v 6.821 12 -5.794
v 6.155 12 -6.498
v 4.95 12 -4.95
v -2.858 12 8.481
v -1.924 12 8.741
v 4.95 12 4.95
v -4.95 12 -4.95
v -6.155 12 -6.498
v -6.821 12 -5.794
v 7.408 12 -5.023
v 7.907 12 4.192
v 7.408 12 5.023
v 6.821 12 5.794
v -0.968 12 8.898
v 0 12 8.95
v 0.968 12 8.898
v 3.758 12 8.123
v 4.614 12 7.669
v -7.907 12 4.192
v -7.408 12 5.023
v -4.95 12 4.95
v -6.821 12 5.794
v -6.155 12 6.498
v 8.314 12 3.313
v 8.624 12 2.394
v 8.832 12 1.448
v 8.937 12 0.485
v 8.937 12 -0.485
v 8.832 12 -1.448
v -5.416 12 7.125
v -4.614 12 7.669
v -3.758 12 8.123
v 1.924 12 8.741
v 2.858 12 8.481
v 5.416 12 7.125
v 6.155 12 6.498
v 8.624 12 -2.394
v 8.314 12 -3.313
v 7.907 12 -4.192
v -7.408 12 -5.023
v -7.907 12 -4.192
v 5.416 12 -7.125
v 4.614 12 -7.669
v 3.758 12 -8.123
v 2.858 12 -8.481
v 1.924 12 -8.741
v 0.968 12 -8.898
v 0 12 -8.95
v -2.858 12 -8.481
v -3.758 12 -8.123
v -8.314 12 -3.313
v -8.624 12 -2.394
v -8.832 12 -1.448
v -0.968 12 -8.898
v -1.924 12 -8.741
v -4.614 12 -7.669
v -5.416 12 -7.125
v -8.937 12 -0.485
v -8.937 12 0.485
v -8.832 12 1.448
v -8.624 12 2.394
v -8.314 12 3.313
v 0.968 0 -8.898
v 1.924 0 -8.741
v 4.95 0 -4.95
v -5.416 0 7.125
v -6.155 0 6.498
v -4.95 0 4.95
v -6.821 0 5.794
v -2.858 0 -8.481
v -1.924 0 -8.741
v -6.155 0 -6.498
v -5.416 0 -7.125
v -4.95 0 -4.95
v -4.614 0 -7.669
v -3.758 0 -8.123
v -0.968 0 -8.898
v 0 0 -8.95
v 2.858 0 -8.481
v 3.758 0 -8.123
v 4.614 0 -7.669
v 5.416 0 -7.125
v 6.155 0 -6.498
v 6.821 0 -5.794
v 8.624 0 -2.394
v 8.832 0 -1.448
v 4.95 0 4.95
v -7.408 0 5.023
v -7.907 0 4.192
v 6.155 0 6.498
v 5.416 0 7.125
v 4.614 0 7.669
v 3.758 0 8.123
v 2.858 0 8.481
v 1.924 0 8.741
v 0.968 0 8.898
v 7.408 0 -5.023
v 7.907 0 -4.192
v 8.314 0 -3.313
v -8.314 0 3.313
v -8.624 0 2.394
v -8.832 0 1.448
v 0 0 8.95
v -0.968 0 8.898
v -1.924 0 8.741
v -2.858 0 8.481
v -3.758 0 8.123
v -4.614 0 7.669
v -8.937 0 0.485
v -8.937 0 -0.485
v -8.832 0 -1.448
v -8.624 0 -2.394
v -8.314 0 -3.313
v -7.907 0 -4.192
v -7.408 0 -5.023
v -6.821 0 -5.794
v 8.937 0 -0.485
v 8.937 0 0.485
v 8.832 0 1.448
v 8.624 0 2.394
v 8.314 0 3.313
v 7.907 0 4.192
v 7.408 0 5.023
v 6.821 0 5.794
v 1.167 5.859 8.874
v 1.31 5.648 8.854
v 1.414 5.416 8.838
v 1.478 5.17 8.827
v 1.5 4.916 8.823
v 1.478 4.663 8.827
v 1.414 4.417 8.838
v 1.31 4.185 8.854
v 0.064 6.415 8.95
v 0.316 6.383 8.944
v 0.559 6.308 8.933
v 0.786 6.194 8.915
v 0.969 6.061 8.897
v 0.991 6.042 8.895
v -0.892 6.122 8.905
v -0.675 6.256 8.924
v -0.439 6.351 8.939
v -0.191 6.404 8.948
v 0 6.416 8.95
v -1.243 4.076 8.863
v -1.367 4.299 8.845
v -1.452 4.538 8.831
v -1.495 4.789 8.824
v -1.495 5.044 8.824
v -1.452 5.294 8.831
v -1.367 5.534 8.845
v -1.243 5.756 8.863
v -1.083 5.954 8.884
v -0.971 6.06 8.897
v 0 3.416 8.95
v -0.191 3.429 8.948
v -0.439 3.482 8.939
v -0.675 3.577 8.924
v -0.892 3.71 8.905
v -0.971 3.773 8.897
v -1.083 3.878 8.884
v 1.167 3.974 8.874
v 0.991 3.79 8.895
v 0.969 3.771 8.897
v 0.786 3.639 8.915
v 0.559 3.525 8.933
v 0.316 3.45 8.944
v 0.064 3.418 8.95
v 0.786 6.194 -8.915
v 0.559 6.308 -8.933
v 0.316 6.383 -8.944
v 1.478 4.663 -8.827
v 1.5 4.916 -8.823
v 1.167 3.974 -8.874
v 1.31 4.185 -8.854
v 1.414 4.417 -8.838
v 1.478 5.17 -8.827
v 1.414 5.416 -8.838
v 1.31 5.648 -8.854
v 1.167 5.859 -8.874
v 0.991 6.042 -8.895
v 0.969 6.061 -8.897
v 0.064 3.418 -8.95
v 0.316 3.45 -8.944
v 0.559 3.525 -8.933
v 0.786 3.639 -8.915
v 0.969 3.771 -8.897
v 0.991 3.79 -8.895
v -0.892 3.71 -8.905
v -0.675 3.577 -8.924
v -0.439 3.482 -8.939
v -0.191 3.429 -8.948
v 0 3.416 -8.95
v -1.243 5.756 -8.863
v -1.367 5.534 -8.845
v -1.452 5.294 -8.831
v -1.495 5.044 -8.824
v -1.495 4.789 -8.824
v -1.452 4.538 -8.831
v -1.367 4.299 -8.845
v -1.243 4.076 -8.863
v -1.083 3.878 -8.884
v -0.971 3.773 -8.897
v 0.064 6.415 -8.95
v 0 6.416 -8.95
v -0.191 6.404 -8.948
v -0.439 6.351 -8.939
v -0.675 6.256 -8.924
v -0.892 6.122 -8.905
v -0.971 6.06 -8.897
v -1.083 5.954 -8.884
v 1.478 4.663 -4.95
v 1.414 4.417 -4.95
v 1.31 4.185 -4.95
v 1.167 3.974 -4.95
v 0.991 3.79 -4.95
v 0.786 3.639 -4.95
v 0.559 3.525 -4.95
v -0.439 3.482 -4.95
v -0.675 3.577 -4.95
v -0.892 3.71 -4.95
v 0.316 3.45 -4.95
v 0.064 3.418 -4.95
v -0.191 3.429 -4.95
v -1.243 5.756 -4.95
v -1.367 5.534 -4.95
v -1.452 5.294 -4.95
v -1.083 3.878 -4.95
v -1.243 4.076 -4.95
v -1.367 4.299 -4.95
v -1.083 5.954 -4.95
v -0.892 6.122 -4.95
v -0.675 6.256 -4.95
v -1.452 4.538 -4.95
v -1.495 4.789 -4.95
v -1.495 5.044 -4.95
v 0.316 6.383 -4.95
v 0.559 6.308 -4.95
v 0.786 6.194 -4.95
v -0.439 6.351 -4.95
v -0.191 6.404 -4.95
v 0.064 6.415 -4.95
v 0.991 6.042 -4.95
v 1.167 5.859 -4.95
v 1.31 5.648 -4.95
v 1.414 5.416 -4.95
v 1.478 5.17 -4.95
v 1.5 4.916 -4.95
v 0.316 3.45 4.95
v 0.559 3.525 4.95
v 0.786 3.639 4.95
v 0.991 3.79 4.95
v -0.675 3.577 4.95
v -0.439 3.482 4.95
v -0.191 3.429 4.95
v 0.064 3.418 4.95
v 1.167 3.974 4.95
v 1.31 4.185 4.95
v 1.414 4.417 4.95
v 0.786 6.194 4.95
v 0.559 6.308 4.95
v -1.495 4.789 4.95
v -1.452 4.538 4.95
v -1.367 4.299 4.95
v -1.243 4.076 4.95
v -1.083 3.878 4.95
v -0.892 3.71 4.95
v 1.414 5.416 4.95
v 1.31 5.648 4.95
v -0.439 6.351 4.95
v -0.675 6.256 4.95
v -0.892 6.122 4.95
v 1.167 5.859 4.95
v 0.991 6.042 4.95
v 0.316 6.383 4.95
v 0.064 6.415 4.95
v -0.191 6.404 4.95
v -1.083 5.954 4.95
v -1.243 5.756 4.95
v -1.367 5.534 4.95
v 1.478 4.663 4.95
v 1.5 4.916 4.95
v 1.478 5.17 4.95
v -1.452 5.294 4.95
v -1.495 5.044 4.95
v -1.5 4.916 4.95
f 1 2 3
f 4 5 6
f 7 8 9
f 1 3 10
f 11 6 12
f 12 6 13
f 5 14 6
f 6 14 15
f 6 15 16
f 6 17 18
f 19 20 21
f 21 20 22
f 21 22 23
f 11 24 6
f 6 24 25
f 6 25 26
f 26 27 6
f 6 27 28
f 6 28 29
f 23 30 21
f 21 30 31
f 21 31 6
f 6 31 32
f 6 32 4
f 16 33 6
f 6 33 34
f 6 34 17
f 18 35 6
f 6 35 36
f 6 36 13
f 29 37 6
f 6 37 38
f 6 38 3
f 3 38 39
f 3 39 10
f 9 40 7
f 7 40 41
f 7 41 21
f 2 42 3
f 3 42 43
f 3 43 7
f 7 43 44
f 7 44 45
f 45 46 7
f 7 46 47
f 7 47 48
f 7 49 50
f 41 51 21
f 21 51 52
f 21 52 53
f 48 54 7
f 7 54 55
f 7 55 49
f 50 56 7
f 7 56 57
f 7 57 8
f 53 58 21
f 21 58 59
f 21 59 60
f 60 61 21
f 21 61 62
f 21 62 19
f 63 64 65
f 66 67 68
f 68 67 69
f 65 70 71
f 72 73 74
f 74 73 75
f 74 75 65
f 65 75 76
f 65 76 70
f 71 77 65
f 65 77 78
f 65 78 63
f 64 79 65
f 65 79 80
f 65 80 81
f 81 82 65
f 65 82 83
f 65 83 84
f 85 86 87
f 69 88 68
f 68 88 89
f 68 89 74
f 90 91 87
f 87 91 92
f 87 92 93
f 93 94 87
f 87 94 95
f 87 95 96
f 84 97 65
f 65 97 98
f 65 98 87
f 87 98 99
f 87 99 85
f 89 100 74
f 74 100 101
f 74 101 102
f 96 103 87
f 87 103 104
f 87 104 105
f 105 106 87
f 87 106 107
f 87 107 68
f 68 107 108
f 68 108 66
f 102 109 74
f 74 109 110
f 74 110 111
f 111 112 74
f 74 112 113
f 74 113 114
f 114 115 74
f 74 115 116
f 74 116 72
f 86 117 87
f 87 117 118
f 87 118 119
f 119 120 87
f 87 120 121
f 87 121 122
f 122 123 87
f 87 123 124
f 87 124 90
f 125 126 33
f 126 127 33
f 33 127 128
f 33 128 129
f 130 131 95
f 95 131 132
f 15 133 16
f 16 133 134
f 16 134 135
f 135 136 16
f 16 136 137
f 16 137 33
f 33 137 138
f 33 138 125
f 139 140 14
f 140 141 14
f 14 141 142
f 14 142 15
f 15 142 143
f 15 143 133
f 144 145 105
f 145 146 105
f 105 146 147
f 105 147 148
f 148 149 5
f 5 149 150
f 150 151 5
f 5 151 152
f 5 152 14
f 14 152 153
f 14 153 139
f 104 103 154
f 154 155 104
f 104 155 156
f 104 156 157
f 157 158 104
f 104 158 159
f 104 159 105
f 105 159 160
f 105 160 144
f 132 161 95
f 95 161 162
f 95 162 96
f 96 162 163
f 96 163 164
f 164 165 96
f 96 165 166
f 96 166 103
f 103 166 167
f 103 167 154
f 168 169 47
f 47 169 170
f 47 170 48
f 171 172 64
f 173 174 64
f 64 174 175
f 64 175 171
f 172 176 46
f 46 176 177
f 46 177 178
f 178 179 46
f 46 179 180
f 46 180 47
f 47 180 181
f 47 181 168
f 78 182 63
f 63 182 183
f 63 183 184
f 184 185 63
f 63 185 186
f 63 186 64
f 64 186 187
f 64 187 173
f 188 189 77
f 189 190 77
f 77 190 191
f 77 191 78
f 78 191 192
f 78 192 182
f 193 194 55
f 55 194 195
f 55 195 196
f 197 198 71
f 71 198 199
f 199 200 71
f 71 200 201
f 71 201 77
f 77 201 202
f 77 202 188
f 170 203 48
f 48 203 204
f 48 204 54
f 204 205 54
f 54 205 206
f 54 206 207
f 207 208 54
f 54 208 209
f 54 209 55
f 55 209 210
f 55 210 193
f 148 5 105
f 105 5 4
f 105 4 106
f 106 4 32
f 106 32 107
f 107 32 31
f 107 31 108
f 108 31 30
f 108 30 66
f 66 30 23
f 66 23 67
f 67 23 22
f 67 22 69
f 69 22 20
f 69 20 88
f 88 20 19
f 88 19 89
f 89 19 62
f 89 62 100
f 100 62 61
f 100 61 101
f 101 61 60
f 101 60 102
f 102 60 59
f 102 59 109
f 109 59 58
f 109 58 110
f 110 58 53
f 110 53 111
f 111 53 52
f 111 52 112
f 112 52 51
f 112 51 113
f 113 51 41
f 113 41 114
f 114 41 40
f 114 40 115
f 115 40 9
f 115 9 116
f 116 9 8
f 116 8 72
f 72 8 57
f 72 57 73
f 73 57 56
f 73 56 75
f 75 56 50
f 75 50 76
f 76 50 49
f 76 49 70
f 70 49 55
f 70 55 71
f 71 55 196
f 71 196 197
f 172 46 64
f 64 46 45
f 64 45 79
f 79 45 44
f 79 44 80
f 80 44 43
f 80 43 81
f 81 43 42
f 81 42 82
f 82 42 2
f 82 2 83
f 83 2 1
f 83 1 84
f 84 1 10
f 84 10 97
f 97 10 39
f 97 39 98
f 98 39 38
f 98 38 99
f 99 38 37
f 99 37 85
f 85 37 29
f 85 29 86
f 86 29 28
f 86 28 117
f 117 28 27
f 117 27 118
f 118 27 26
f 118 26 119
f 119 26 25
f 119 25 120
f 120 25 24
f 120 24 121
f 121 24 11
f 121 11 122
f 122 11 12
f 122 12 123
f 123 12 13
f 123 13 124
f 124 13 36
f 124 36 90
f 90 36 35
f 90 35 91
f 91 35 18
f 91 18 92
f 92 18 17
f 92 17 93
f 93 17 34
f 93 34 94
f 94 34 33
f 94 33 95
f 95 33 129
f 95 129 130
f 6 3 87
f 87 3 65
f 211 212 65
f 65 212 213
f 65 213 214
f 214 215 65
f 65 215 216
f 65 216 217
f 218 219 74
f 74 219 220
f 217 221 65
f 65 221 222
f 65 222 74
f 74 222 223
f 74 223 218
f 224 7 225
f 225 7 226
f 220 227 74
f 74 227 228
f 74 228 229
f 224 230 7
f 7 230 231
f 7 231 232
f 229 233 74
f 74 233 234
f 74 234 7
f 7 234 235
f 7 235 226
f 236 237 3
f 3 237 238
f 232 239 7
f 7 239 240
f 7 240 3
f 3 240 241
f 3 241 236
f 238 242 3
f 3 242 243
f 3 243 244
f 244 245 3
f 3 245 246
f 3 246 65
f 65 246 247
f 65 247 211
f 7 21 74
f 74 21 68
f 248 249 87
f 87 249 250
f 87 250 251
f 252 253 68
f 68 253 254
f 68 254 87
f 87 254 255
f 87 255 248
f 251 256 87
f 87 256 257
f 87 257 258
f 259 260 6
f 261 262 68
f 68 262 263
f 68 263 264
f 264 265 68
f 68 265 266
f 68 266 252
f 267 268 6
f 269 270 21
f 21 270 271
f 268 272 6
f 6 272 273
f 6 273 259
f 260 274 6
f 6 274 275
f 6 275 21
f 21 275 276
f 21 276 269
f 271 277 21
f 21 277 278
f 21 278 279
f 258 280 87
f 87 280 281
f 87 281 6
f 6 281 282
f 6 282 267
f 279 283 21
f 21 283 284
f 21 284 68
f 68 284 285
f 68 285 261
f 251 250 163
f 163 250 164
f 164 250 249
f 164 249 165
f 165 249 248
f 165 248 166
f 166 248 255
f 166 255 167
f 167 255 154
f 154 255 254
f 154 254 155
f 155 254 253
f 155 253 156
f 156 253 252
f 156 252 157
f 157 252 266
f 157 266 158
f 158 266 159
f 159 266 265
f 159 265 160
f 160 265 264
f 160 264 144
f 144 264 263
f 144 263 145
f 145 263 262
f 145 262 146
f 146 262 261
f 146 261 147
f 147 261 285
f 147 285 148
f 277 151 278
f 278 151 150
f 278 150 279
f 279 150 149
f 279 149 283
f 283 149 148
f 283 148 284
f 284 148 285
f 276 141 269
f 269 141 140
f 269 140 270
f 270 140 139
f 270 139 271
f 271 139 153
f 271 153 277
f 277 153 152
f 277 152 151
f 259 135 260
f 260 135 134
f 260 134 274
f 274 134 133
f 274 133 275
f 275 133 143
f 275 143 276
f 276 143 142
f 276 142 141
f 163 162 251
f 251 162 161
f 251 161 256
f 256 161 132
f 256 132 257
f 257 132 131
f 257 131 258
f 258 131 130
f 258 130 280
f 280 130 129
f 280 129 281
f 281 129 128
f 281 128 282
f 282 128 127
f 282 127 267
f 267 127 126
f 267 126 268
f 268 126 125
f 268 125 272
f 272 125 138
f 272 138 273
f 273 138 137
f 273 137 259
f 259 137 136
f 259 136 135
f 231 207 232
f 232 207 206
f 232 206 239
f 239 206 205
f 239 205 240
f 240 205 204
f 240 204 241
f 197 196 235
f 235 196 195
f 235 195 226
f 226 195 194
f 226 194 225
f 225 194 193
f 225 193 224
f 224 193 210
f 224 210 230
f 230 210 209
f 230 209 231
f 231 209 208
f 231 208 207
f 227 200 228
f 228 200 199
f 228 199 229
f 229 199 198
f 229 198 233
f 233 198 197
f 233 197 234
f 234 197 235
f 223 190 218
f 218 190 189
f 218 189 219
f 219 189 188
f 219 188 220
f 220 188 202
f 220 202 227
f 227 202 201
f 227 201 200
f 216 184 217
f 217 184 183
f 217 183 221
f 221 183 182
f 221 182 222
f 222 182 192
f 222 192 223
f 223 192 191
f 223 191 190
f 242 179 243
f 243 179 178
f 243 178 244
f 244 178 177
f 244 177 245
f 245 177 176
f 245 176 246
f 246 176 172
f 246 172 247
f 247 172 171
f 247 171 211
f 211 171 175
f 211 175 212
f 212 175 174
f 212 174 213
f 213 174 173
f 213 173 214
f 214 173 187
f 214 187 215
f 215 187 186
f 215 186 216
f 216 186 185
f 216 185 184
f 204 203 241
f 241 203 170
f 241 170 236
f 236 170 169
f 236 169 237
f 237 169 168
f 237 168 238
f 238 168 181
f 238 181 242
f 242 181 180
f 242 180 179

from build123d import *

# Parameters (mm, degrees)
SKETCH1_R               = 8.95
SKETCH1_W               = 9.9
SKETCH1_H               = 9.9
BOSS_EXTRUDE1_DEPTH     = 12
CUT_EXTRUDE2_DEPTH      = 18.441473562
CUT_EXTRUDE2_DEPTH_BACK = 18.441473562
SKETCH4_R               = 1.5


with BuildPart() as part:
    # Sketch1 → Boss-Extrude1 (new body)
    with BuildSketch(Plane(origin=(0, 0, 0), x_dir=(1, 0, 0), z_dir=(0, 1, 0))):
        with Locations(Location((0, 0, 0), (0, 0, 270))):
            Circle(SKETCH1_R)
        Rectangle(SKETCH1_W, SKETCH1_H, mode=Mode.SUBTRACT)
    extrude(amount=BOSS_EXTRUDE1_DEPTH)

    # Sketch4 → Cut-Extrude2 (cut, two sides: drawn at the far end of the back side and taken through both)
    with BuildSketch(Plane.XY.offset(-CUT_EXTRUDE2_DEPTH_BACK)):
        with Locations((0, 4.916404418)):
            Circle(SKETCH4_R)
    extrude(amount=CUT_EXTRUDE2_DEPTH + CUT_EXTRUDE2_DEPTH_BACK, mode=Mode.SUBTRACT)


solid = part.part
